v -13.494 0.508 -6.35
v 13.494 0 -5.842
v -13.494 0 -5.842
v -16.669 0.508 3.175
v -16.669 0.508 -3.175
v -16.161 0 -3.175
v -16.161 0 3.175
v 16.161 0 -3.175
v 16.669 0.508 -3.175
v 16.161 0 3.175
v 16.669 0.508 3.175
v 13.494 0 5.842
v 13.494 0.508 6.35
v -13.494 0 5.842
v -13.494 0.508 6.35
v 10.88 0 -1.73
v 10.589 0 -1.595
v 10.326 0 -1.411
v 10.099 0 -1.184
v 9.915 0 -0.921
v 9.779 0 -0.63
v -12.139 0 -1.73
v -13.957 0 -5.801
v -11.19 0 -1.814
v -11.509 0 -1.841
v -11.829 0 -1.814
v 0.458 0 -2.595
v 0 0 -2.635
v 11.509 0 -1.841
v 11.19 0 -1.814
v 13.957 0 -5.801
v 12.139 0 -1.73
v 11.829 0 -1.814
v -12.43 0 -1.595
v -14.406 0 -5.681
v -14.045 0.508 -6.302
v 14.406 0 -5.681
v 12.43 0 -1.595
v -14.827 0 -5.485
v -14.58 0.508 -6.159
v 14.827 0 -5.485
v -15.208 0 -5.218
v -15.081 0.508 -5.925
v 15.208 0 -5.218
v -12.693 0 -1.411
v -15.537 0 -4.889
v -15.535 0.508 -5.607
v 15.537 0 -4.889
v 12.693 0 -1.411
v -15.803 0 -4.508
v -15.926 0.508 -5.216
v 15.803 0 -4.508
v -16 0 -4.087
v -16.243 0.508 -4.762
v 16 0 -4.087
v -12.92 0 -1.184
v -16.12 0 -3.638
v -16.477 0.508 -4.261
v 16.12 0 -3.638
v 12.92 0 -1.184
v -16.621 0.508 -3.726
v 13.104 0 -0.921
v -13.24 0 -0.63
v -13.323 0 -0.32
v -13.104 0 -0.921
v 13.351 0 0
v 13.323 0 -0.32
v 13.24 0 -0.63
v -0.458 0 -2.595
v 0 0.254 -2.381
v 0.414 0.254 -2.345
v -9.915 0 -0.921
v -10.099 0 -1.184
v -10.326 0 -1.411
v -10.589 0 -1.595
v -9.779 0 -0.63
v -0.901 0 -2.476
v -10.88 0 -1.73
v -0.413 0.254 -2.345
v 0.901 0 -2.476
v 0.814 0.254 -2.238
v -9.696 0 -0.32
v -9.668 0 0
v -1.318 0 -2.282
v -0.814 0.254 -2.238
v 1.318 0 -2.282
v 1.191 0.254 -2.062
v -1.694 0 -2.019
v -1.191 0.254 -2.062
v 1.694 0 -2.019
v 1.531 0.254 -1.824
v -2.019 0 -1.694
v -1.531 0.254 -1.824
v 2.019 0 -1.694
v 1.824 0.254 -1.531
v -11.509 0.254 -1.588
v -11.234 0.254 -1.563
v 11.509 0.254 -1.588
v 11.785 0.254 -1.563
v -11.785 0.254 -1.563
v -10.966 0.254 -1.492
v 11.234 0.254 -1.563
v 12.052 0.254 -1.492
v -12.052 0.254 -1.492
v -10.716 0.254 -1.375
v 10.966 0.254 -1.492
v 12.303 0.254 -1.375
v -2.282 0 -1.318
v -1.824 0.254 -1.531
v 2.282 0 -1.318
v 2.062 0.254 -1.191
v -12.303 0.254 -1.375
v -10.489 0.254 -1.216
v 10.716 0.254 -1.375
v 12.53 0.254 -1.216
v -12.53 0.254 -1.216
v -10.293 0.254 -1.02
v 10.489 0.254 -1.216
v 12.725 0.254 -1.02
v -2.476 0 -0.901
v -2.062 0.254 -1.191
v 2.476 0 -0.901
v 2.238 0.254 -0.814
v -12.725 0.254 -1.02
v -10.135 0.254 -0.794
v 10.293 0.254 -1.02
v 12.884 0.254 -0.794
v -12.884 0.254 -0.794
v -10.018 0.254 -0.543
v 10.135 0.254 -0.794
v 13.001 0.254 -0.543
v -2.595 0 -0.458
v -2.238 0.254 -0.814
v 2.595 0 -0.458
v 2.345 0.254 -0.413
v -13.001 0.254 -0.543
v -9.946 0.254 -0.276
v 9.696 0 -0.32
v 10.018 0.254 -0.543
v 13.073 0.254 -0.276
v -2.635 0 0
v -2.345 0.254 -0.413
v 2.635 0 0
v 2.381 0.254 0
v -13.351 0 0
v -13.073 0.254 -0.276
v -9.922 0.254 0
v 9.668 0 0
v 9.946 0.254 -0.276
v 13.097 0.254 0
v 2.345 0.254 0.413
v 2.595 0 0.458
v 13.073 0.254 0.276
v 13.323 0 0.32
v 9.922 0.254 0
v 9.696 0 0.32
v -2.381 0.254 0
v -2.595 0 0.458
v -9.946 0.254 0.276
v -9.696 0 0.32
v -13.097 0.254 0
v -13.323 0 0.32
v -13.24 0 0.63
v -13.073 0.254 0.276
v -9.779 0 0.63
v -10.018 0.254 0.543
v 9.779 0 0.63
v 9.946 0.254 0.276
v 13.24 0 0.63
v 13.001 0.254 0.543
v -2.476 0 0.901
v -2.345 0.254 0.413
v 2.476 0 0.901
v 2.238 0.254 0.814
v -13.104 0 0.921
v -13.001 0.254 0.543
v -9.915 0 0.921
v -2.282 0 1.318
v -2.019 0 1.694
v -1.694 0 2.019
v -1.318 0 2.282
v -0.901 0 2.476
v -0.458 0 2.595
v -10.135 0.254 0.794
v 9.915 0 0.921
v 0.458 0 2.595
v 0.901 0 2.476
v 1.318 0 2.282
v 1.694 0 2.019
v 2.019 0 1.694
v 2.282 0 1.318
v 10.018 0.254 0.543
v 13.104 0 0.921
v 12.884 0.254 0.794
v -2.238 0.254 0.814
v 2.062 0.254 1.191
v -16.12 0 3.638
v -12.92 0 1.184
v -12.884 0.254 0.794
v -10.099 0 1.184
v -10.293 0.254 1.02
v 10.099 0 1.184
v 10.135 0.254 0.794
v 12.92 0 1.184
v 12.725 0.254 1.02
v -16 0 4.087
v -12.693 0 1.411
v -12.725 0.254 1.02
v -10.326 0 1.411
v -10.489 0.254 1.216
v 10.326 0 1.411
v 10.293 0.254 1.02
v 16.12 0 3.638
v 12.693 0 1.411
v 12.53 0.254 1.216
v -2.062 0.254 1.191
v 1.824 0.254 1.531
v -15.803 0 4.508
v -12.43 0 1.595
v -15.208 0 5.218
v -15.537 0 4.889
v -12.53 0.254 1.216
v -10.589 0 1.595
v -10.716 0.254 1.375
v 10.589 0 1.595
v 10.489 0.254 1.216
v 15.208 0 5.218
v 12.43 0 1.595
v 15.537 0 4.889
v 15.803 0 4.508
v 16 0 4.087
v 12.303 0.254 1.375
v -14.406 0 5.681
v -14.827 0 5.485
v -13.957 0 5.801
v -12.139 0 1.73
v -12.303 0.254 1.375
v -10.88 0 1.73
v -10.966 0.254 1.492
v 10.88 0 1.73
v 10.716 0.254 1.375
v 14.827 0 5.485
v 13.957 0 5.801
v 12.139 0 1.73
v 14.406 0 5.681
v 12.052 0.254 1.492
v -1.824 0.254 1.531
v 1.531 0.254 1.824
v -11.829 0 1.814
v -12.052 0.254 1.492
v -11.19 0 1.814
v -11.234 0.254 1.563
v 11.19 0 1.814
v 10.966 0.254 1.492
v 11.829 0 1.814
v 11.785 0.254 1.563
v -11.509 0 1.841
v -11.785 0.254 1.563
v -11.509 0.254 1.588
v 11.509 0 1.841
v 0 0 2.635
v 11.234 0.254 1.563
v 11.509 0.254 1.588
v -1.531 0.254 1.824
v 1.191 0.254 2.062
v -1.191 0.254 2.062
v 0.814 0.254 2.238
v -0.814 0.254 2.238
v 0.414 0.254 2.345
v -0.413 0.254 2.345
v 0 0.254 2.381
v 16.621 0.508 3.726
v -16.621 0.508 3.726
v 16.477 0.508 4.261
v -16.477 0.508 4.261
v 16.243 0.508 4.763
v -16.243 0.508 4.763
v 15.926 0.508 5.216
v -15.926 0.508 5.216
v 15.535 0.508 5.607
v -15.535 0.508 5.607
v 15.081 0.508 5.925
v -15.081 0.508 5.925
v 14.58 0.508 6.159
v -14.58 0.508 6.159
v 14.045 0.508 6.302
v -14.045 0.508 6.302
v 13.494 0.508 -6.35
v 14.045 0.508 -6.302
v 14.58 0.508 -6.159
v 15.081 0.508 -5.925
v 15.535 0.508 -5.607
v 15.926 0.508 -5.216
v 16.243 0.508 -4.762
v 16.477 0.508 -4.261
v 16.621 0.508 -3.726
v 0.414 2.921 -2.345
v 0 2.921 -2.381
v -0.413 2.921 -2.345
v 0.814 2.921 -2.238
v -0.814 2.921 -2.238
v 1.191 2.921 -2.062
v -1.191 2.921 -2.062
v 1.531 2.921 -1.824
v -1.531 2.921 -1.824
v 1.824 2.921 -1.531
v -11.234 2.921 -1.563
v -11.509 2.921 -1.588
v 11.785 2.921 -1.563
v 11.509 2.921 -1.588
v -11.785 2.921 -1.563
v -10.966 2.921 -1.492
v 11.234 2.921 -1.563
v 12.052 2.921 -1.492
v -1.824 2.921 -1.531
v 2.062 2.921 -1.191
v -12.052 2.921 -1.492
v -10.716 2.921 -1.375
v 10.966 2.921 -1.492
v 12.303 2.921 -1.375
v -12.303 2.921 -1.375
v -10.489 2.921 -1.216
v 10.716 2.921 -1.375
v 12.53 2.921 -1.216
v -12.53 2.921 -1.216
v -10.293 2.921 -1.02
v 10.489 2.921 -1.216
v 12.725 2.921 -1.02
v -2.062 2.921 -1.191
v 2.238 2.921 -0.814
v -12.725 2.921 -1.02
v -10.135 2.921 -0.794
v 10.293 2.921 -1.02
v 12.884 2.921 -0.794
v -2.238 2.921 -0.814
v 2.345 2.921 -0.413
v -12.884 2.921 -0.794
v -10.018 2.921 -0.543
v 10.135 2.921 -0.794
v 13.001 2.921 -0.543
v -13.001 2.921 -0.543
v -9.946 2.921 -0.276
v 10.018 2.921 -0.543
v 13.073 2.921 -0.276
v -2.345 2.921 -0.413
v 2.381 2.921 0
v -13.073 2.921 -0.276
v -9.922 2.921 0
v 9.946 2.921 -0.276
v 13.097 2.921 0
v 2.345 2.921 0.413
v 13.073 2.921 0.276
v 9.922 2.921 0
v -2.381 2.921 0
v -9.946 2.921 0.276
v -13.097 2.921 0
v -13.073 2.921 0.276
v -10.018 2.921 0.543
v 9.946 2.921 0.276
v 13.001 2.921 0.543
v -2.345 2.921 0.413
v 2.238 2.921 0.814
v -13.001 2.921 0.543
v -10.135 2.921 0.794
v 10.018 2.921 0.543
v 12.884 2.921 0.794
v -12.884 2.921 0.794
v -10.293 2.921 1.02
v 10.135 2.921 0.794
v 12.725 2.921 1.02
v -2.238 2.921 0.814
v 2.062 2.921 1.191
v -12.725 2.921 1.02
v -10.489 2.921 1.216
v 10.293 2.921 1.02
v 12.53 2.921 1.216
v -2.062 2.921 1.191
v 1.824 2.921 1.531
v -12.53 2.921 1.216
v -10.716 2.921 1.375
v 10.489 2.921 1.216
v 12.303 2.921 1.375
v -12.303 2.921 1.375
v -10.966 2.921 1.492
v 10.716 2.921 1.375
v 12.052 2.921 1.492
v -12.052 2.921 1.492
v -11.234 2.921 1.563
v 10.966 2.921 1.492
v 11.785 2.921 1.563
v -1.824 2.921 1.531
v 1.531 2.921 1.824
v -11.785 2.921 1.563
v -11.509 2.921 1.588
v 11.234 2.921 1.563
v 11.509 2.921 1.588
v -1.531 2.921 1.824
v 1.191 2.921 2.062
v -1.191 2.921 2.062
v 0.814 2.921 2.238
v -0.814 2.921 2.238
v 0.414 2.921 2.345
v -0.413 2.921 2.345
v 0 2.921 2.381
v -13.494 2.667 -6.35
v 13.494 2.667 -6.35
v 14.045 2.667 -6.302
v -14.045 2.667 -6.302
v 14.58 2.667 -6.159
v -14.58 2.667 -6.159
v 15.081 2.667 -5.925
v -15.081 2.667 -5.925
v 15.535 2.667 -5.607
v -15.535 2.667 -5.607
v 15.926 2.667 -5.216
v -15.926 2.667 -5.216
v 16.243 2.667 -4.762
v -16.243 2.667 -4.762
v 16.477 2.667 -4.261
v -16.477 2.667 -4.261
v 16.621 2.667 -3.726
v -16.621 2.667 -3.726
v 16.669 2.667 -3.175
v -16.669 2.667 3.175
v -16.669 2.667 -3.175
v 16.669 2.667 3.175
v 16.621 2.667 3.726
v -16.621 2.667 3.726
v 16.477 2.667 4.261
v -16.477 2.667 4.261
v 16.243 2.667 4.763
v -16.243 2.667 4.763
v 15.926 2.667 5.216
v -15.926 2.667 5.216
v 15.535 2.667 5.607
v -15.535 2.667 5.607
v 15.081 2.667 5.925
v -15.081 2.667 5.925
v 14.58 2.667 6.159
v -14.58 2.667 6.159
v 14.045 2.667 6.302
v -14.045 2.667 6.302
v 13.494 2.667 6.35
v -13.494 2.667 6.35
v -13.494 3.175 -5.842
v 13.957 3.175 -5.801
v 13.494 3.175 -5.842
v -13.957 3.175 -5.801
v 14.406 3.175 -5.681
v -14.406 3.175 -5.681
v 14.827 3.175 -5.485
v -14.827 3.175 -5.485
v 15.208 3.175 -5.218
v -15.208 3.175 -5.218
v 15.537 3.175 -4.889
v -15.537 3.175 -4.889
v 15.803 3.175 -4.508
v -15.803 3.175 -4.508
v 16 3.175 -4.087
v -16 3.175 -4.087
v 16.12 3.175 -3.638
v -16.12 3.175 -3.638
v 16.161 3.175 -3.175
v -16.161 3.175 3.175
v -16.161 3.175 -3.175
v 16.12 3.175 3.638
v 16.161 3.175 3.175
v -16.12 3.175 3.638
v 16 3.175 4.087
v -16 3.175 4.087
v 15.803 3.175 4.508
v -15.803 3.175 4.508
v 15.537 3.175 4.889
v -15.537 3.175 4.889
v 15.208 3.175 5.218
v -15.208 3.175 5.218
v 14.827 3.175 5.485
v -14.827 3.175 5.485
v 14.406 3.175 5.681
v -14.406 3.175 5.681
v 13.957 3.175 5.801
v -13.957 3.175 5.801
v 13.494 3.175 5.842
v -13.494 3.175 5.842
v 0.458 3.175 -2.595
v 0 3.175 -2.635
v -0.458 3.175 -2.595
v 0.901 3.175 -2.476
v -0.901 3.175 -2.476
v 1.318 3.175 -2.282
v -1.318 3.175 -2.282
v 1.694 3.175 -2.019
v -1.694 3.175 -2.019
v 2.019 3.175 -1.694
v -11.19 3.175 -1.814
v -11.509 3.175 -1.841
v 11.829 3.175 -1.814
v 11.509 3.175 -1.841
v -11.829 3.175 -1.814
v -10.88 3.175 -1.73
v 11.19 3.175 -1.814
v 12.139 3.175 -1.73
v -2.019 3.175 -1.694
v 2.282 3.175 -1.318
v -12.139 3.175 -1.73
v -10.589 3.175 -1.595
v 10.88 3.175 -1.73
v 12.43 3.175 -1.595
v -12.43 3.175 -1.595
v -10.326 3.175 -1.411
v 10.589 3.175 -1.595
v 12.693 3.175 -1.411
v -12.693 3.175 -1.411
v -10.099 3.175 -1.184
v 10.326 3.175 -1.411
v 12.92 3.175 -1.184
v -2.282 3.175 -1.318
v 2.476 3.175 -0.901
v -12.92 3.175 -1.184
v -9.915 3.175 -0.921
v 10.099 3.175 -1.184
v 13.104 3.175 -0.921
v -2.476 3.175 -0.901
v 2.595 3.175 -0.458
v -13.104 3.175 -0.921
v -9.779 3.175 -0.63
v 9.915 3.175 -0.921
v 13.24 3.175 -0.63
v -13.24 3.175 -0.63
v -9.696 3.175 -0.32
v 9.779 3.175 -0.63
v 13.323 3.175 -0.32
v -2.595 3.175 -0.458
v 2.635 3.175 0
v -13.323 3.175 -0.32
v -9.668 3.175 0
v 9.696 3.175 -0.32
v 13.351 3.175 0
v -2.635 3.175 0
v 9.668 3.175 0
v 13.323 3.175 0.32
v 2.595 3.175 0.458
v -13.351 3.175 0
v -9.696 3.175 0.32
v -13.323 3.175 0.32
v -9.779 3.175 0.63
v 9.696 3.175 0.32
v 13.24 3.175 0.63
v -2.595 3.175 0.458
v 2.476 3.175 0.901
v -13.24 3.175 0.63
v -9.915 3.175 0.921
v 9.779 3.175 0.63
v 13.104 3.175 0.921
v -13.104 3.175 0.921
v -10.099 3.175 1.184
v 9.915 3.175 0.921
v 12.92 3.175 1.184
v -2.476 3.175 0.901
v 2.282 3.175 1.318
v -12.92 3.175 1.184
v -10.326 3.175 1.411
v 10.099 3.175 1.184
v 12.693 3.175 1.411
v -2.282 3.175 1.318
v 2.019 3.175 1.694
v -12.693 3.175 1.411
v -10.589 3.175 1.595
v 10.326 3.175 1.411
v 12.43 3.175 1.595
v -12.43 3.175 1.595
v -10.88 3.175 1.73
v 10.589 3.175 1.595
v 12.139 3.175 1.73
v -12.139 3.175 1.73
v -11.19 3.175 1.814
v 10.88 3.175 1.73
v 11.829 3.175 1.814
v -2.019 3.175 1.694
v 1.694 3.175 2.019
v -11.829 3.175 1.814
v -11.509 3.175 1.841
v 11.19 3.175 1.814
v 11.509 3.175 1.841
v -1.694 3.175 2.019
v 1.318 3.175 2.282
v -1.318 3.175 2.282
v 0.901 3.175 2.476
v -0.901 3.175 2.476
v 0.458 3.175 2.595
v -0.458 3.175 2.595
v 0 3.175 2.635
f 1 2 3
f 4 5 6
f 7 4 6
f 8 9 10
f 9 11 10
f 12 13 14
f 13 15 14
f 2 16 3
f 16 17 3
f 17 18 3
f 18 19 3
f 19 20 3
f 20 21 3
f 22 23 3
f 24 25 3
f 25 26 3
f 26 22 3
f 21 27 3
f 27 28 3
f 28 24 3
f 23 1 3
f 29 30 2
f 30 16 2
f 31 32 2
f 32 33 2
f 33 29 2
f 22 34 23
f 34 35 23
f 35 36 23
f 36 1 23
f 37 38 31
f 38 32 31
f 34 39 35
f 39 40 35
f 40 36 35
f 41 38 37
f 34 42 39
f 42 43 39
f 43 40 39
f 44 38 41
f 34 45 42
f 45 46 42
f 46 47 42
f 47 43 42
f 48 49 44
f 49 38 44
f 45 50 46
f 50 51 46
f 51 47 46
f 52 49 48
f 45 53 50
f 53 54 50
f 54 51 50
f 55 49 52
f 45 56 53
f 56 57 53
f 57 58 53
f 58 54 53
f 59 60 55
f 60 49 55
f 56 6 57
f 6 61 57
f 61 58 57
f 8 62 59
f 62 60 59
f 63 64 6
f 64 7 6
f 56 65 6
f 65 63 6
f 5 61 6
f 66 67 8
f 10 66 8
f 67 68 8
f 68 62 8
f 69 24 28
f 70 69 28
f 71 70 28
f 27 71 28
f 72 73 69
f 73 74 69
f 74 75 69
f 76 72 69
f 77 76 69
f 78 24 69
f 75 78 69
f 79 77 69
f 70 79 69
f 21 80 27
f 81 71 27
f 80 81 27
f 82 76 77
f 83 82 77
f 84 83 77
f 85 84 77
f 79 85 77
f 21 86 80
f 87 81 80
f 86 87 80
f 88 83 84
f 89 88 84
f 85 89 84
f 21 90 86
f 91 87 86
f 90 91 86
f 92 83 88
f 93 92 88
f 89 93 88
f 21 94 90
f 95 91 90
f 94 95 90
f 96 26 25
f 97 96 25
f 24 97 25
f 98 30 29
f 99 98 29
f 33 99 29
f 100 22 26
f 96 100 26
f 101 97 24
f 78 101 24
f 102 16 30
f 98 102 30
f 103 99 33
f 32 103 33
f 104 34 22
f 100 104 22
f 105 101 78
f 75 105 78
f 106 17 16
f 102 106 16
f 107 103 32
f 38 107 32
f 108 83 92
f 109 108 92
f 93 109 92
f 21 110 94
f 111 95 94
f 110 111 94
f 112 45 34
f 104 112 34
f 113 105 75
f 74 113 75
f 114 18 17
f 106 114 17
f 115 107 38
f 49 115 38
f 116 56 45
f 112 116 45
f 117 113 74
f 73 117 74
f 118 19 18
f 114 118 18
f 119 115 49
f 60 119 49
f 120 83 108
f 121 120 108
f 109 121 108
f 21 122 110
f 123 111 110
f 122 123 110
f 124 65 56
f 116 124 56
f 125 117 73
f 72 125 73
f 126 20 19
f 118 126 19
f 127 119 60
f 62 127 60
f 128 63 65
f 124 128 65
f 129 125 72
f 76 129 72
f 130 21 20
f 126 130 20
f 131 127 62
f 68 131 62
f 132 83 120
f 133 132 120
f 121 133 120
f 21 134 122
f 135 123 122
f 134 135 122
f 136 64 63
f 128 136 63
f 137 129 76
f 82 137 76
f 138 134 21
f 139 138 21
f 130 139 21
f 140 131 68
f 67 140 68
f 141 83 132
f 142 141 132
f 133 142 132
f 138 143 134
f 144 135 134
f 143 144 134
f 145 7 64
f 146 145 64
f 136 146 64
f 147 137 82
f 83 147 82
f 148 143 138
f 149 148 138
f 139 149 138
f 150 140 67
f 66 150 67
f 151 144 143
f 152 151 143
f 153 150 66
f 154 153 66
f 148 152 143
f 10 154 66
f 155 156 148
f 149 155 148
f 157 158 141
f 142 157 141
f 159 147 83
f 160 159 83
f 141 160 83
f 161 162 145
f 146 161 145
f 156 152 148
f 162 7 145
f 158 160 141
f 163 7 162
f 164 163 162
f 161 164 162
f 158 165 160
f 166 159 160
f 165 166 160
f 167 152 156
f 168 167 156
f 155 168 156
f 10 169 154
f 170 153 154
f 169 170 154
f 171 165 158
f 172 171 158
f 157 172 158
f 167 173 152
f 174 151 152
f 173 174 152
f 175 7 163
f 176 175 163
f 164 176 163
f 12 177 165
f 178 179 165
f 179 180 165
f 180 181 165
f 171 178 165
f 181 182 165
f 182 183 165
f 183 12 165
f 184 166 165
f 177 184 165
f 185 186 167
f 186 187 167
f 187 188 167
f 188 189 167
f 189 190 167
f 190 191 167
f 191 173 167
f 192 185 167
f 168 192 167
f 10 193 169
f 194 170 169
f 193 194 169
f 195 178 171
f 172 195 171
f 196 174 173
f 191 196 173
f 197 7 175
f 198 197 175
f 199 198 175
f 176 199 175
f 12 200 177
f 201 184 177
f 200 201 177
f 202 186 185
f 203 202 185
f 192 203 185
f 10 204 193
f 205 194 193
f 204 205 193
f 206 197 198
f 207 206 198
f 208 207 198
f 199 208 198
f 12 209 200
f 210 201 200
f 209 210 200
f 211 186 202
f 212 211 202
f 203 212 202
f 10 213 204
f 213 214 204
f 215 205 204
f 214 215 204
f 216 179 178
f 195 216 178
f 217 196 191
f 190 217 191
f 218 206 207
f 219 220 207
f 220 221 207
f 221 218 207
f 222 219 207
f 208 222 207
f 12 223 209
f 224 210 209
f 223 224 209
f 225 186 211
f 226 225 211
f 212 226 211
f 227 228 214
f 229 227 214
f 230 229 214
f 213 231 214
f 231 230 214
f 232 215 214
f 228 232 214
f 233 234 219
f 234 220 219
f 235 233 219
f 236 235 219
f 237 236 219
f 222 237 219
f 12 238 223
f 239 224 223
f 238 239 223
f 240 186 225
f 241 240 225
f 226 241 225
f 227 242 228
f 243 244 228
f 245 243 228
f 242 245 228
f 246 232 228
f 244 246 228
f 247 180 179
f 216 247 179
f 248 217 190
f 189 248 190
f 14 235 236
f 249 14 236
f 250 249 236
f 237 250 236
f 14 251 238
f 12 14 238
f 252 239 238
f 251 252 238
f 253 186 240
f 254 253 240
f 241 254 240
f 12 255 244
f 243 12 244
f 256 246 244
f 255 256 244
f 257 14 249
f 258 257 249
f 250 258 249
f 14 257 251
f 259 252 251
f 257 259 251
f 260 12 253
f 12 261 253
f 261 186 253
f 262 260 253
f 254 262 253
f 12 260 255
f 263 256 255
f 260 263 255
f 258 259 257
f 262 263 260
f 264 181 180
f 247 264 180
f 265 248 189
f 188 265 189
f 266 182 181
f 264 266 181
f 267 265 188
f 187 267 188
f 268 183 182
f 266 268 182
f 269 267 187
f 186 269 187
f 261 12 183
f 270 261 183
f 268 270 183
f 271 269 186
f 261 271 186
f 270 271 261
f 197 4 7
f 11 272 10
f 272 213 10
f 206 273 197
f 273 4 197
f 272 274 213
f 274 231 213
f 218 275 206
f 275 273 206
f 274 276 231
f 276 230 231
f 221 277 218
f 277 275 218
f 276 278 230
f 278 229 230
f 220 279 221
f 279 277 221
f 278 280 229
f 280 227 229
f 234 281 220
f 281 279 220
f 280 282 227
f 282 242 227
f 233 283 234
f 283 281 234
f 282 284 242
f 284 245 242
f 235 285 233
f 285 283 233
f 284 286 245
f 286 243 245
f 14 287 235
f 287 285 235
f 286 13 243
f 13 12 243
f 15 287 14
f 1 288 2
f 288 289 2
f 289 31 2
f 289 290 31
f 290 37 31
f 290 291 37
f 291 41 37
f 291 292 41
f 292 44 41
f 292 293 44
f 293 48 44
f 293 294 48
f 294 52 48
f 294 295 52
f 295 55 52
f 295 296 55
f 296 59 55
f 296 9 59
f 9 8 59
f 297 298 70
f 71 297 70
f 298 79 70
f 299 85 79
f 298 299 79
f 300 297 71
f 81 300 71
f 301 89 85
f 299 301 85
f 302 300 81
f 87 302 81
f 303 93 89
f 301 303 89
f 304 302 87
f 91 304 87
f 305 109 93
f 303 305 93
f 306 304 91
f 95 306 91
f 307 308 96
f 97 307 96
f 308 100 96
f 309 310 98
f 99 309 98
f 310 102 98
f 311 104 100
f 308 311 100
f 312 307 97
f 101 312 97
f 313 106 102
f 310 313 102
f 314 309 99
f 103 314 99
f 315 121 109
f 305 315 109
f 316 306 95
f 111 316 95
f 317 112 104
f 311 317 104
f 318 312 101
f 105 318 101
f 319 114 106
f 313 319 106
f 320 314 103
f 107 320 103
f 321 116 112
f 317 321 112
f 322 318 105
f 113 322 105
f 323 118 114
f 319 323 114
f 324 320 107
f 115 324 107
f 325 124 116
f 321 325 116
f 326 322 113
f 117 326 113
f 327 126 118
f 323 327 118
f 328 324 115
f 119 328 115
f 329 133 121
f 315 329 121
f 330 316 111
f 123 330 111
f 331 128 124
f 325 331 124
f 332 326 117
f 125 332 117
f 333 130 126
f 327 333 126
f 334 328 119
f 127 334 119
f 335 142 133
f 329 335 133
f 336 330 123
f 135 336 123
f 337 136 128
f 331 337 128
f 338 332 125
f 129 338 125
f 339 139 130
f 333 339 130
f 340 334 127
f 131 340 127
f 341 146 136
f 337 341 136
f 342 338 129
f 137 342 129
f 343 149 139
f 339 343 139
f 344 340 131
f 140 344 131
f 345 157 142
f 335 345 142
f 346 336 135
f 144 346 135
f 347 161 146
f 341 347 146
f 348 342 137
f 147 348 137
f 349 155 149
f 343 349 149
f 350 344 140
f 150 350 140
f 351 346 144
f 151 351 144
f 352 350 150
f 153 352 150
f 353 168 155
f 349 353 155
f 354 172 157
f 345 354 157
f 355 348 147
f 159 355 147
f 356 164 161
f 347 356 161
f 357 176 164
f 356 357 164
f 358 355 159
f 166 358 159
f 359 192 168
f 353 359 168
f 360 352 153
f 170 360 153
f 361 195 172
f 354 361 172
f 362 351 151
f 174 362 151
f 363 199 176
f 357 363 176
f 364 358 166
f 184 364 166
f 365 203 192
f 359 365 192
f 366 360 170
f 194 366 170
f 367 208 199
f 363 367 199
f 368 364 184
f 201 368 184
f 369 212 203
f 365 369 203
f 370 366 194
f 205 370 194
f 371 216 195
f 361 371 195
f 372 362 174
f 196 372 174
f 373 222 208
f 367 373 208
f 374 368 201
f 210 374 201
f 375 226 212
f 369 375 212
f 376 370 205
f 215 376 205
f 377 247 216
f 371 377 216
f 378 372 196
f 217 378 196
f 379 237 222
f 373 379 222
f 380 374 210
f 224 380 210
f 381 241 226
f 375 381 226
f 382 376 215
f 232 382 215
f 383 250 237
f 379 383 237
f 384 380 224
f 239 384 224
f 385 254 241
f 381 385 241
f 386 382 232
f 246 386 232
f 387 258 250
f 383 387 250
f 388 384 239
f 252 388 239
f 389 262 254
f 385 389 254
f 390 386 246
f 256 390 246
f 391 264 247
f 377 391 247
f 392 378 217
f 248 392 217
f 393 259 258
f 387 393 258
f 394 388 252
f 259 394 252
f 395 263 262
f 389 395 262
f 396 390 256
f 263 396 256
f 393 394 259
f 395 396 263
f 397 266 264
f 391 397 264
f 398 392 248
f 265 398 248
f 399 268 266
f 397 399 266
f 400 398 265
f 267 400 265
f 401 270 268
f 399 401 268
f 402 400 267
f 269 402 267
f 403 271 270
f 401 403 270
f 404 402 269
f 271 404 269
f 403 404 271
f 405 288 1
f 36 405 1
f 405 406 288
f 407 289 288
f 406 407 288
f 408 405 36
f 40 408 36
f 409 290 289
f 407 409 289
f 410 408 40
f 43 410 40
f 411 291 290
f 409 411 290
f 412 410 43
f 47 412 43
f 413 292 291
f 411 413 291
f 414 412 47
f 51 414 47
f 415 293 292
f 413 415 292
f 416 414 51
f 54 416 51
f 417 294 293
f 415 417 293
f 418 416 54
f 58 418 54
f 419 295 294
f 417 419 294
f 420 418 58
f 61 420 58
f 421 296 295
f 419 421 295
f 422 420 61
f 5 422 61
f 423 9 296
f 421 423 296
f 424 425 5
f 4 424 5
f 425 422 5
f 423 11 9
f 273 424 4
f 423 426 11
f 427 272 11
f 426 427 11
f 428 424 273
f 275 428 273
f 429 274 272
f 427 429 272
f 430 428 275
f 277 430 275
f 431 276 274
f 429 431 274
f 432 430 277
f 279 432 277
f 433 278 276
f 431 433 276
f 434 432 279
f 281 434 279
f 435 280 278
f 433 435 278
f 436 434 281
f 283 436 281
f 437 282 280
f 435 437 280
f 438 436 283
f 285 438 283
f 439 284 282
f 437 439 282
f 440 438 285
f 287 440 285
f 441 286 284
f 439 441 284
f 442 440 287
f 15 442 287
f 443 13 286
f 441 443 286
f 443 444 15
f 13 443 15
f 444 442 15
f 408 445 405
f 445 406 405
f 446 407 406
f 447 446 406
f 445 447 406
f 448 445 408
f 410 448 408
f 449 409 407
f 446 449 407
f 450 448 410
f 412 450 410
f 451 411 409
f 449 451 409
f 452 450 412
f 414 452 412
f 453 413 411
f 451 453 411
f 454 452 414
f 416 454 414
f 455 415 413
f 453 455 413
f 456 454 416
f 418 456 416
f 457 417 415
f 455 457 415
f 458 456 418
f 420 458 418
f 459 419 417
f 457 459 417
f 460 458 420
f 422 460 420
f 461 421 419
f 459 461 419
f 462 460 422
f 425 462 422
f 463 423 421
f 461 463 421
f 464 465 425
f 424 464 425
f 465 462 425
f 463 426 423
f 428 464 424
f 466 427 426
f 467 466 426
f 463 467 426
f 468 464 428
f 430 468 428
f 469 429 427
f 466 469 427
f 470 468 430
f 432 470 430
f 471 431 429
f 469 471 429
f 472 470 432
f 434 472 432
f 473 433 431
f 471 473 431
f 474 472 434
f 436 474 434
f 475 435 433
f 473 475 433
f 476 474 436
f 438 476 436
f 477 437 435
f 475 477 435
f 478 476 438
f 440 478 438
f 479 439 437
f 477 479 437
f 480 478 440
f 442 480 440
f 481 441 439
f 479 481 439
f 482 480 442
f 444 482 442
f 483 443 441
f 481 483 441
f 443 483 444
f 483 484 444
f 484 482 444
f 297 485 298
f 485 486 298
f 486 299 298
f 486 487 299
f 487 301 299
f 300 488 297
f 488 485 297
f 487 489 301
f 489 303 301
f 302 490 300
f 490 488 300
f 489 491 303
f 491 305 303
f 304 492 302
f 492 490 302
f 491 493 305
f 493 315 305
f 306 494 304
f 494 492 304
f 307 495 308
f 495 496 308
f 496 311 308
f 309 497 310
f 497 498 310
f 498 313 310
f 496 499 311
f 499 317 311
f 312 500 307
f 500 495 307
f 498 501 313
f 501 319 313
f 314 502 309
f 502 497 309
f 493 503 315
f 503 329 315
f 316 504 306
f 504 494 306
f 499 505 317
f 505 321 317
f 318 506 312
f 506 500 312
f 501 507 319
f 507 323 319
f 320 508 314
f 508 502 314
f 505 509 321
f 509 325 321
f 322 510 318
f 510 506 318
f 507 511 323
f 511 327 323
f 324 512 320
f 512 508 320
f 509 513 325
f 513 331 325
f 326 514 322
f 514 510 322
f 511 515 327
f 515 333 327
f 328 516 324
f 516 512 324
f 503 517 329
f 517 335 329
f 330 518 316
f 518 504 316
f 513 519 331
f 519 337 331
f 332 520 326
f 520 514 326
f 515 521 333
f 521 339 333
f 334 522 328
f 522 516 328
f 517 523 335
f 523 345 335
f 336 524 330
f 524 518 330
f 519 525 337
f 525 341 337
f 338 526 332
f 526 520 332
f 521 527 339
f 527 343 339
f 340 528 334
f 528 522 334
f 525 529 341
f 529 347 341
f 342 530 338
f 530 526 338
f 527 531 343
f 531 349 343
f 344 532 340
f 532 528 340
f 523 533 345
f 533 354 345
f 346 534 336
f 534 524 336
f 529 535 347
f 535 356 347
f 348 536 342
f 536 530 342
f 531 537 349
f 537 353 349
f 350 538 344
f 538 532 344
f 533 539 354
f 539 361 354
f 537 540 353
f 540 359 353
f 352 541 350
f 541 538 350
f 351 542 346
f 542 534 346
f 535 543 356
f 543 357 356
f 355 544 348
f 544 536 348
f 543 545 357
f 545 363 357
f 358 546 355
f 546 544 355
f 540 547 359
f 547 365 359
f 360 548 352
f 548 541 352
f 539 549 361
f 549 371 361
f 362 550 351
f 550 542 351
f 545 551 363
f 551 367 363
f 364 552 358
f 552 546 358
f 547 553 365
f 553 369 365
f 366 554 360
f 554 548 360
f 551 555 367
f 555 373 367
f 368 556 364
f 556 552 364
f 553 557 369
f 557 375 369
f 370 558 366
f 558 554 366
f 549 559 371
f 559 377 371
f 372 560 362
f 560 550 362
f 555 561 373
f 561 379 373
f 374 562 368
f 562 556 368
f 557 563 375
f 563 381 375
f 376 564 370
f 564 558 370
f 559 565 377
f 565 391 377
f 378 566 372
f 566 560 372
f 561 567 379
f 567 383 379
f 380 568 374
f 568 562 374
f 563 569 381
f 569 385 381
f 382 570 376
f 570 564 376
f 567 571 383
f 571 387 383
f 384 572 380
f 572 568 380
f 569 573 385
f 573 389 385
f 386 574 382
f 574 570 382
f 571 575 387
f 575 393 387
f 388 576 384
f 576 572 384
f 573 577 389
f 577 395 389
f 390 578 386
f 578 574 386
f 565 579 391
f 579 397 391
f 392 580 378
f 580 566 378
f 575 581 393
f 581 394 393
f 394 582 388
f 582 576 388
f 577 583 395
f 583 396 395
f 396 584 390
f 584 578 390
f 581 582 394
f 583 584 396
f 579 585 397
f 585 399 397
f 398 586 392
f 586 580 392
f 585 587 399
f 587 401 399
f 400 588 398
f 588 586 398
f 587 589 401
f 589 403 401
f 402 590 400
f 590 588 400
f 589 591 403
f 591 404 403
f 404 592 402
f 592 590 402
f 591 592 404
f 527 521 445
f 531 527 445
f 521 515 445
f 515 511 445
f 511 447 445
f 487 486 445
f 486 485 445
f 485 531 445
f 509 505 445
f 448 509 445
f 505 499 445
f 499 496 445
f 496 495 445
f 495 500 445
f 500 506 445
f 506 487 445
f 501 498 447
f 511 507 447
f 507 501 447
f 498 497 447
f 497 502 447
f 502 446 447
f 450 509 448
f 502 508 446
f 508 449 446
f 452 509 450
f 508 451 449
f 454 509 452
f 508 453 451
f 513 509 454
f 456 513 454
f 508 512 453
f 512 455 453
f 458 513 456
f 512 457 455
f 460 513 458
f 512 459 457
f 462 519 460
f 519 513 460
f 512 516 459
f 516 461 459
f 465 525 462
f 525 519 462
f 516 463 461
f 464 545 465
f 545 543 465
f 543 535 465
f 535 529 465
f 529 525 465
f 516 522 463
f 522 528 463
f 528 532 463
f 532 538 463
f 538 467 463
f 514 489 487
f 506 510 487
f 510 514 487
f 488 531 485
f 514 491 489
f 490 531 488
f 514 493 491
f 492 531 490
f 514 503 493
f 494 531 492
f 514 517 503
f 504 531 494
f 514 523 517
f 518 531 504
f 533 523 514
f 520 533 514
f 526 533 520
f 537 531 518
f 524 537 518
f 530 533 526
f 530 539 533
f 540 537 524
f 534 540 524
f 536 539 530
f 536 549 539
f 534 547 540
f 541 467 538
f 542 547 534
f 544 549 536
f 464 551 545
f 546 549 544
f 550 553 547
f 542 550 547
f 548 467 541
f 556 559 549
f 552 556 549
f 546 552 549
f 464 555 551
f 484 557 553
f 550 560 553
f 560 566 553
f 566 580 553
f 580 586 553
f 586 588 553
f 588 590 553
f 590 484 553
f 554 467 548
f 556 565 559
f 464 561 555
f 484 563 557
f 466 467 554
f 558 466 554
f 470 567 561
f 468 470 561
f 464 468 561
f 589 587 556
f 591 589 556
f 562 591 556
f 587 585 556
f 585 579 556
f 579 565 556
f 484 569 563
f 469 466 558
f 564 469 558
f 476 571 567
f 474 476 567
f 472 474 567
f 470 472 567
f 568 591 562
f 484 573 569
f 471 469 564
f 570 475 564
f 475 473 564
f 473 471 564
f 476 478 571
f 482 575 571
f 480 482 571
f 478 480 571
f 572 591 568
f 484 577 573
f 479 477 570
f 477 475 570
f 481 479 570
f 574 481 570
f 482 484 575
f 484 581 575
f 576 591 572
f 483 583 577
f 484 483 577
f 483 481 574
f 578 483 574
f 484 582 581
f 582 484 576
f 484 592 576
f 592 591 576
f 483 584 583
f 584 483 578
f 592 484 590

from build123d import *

# Parameters (mm, degrees)
SKETCH1_W           = 33.3375
SKETCH1_H           = 12.7
SKETCH1_R           = 1.5875
SKETCH1_R_2         = 2.38125
BOSS_EXTRUDE1_DEPTH = 3.175
FILLET1_R           = 3.175
CHAMFER2_SIZE       = 0.508
CHAMFER1_SIZE       = 0.254


with BuildPart() as part:
    # Sketch1 → Boss-Extrude1 (new body)
    with BuildSketch(Plane(origin=(0, 0, 0), x_dir=(1, 0, 0), z_dir=(0, 1, 0))):
        Rectangle(SKETCH1_W, SKETCH1_H)
        with Locations((-11.509375, 0)):
            Circle(SKETCH1_R, mode=Mode.SUBTRACT)
        with Locations((11.509375, 0)):
            Circle(SKETCH1_R, mode=Mode.SUBTRACT)
        Circle(SKETCH1_R_2, mode=Mode.SUBTRACT)
    extrude(amount=BOSS_EXTRUDE1_DEPTH)

    # Fillet1
    fillet1_edges = [part.edges().sort_by_distance(p)[0] for p in [
        (16.66875, 1.5875, 6.35),
        (-16.66875, 1.5875, 6.35),
        (-16.66875, 1.5875, -6.35),
        (16.66875, 1.5875, -6.35),
    ]]
    fillet(fillet1_edges, radius=FILLET1_R)

    # Chamfer2
    chamfer2_edges = [part.edges().sort_by_distance(p)[0] for p in [
        (16.66875, 0, 0),
        (16.66875, 3.175, 0),
        (0, 0, 6.35),
        (-16.66875, 0, 0),
        (0, 0, -6.35),
        (-15.73881403, 0, 5.42006403),
        (15.73881403, 0, -5.42006403),
        (-15.73881403, 0, -5.42006403),
        (15.73881403, 0, 5.42006403),
        (0, 3.175, 6.35),
        (0, 3.175, -6.35),
        (-16.66875, 3.175, 0),
        (-15.73881403, 3.175, 5.42006403),
        (15.73881403, 3.175, -5.42006403),
        (-15.73881403, 3.175, -5.42006403),
        (15.73881403, 3.175, 5.42006403),
    ]]
    chamfer(chamfer2_edges, length=CHAMFER2_SIZE)

    # Chamfer1
    chamfer1_edges = [part.edges().sort_by_distance(p)[0] for p in [
        (-13.096875, 0, 0),
        (-13.096875, 3.175, 0),
        (9.921875, 0, 0),
        (9.921875, 3.175, 0),
        (-2.38125, 0, 0),
        (-2.38125, 3.175, 0),
    ]]
    chamfer(chamfer1_edges, length=CHAMFER1_SIZE)


solid = part.part
